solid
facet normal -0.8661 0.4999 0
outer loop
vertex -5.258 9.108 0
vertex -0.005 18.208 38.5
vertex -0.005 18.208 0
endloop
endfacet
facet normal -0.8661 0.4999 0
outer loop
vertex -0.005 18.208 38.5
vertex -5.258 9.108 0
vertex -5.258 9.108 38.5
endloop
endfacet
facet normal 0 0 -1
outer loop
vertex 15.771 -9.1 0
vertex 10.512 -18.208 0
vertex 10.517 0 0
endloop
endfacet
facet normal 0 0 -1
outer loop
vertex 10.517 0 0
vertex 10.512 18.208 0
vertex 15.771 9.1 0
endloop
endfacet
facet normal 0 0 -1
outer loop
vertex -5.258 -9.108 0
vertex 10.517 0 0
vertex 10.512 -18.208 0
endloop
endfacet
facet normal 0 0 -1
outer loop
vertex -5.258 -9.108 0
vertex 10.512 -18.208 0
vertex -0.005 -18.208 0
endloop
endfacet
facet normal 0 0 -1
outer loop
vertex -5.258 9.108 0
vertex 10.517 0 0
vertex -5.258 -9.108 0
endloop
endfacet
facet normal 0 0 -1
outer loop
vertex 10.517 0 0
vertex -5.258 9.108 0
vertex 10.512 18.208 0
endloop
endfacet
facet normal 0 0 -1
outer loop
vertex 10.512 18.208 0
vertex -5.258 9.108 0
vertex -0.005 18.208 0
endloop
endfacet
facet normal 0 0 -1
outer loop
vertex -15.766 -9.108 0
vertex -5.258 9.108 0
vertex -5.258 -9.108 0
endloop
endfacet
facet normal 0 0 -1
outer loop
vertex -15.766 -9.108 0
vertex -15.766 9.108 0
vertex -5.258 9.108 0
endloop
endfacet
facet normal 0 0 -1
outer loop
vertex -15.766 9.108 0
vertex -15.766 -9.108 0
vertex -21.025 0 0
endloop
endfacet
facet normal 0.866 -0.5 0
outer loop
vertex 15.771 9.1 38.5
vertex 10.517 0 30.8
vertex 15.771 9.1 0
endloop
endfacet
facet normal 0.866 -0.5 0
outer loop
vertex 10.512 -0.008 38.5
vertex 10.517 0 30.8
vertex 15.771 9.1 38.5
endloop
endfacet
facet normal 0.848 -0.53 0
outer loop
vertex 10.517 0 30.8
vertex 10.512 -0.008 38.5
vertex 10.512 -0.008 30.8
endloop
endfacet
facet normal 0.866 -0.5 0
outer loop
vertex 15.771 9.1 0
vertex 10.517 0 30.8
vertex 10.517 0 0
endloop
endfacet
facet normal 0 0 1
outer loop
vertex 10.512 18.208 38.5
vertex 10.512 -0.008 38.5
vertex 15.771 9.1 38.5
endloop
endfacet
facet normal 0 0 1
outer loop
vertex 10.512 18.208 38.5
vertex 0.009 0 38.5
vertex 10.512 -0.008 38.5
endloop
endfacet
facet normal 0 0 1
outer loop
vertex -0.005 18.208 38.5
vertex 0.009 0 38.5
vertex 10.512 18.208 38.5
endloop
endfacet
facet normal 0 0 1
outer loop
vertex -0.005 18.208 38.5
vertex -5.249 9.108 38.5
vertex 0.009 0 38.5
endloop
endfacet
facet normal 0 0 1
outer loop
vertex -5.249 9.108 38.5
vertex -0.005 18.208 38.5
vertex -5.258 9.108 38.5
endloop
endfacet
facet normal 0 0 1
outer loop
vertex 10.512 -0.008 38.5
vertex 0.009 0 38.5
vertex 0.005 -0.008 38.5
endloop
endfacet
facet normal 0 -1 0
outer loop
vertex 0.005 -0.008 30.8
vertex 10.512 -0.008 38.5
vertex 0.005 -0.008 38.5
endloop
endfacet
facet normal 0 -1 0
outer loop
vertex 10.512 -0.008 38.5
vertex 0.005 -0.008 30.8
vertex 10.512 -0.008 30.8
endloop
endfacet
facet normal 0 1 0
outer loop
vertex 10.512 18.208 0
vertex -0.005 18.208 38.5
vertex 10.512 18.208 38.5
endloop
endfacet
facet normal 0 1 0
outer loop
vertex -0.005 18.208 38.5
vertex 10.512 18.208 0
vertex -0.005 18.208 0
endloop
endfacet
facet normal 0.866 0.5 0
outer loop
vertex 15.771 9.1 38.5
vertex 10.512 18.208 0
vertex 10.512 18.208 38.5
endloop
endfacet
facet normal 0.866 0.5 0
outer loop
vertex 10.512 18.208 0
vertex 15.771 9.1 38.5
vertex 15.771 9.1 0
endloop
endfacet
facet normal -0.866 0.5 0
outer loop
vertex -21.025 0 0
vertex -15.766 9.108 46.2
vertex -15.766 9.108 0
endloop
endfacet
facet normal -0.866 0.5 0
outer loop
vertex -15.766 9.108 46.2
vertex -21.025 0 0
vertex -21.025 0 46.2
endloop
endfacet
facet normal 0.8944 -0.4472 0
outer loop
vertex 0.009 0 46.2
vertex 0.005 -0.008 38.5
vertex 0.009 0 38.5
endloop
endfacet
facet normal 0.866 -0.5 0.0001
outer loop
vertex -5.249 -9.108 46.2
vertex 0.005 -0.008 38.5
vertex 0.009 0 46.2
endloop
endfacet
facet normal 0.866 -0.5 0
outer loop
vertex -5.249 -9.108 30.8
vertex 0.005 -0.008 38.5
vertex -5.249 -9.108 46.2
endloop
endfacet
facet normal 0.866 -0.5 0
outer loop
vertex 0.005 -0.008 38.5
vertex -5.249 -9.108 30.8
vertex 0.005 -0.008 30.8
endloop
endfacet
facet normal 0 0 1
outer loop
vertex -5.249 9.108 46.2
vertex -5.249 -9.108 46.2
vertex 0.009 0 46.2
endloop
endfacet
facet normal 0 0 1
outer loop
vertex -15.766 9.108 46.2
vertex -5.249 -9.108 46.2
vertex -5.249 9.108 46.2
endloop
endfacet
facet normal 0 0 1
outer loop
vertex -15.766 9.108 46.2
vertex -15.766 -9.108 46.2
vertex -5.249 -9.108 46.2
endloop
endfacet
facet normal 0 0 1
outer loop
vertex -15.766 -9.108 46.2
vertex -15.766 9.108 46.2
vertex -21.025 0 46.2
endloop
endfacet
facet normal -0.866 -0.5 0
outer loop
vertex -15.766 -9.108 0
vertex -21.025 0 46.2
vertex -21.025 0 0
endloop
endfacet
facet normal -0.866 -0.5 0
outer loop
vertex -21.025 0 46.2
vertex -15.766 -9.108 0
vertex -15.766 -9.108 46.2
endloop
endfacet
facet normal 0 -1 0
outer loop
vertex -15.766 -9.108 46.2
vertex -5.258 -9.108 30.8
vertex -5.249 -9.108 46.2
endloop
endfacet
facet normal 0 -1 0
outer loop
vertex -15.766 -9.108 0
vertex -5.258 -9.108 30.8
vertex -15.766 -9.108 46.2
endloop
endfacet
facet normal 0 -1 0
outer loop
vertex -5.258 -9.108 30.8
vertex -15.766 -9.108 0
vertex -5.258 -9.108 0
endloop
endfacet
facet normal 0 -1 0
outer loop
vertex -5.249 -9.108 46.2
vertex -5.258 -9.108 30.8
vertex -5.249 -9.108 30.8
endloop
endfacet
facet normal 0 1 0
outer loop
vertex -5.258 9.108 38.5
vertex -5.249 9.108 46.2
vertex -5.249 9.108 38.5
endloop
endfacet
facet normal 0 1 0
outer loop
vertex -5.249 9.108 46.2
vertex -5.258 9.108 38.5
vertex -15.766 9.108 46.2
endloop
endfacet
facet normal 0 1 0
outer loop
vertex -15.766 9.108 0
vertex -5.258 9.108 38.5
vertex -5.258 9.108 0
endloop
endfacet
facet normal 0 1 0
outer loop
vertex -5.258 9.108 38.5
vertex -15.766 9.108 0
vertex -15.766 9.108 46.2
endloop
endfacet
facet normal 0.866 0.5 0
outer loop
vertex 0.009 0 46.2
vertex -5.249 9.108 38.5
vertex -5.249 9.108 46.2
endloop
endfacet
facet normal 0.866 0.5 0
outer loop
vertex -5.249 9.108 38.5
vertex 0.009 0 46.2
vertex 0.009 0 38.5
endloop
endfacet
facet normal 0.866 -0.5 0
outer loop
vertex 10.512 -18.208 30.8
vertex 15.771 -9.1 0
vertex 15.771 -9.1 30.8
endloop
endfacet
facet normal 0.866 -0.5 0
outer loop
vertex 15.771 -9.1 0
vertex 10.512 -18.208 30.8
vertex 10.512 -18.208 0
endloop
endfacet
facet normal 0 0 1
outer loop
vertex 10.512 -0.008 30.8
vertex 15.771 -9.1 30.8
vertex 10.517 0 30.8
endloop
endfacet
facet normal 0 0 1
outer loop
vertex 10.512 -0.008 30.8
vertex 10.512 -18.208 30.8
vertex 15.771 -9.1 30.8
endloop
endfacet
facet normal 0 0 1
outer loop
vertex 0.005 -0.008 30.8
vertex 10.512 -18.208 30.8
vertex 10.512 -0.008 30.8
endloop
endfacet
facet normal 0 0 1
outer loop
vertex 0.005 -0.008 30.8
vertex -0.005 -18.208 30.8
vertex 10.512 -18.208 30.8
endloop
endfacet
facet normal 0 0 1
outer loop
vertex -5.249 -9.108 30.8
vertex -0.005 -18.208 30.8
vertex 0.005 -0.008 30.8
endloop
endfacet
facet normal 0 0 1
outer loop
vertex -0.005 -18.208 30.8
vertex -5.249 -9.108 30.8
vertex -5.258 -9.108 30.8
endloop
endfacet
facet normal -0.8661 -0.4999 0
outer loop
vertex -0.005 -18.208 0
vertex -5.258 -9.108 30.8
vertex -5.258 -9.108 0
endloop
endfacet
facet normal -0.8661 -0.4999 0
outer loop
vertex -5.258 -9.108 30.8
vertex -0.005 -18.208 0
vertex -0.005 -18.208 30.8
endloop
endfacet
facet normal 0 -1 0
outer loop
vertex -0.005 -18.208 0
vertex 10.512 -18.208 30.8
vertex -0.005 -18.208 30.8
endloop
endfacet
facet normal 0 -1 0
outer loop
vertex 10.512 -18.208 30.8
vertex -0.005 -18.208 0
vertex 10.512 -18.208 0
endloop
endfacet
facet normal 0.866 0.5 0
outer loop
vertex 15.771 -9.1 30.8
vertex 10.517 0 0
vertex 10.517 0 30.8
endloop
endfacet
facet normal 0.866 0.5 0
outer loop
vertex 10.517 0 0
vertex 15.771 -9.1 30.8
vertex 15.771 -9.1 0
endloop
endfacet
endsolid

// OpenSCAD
// file: dimensions.scad
measureX = 9.10; // 92/2/2/sqrt(19)*sqrt(3)
measureY = 9.10; 
measureZ = 7.7; // 54/7 is about 7.7

halfSide = 1*tan(30);
h1 = 1;
dd = 0.001;
// main file
include <dimensions.scad>

hh = [5,6,4];

scale([measureX,measureY,measureZ]) union() {
    translate([halfSide,1,0]) 
    linear_extrude(height = hh[0]*h1, center = false)
    circle(2*halfSide + dd,$fn=6);
    
    translate([-2*halfSide,0,0]) 
    linear_extrude(height = hh[1]*h1, center = false)
    circle(2*halfSide + dd,$fn=6);
    
    translate([halfSide,-1,0]) 
    linear_extrude(height = hh[2]*h1, center = false)
    circle(2*halfSide + dd,$fn=6);
}
